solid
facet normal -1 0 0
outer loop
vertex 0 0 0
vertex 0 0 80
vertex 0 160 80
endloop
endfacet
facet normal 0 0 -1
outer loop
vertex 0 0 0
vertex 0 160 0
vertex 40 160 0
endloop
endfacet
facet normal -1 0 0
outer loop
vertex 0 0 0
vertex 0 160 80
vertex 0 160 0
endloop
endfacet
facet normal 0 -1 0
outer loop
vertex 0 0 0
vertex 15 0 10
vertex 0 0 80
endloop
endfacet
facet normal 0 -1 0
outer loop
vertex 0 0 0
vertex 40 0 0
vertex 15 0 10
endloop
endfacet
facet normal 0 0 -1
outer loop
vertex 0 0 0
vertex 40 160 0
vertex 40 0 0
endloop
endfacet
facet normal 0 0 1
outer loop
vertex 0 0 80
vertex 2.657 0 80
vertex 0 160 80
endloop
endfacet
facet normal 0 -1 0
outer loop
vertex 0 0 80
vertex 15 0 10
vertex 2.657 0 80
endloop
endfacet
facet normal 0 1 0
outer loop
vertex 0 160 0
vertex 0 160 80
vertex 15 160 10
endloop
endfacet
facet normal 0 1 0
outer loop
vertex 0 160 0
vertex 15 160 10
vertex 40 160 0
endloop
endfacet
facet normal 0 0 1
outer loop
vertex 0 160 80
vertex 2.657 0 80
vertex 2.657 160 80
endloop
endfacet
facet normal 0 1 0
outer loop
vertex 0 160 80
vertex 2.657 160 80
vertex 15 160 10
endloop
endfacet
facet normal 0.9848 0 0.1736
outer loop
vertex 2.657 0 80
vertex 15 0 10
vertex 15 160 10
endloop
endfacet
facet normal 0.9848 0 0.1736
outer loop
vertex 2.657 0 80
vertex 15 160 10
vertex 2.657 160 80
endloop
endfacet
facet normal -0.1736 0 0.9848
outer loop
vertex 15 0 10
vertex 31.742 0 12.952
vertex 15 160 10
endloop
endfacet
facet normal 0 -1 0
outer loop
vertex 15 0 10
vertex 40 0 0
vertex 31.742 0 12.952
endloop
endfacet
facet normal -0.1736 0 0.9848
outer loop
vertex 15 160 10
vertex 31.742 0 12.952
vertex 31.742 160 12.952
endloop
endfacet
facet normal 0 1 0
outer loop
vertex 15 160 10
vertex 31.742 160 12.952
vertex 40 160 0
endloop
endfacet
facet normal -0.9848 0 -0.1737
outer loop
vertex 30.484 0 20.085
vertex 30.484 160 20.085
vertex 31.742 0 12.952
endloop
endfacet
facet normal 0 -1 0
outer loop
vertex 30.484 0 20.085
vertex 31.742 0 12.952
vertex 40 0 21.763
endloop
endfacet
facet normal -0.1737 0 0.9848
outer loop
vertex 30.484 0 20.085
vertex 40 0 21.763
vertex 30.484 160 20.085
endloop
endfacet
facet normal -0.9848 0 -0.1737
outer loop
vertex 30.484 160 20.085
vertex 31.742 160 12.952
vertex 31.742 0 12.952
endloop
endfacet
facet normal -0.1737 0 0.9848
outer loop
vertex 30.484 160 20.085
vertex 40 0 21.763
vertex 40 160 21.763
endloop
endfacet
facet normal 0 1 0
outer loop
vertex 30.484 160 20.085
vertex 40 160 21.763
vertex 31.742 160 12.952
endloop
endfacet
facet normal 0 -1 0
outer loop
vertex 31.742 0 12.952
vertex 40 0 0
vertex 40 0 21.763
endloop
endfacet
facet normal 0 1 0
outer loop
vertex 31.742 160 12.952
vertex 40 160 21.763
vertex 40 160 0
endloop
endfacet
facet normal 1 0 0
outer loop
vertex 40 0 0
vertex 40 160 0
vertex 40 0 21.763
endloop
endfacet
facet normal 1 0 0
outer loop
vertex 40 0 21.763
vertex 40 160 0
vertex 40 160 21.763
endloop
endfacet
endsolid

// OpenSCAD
// mac mini monitorstand
// Sebastian Weigl
// 11.11.2025
// v01 --w/o insets

difference(){
cube([40,160,80]);
translate([15,0,10])
rotate([0,-10,0])
cube([17,160,225]);
translate([30,0,20])
rotate([0,-10,0])
cube([22,160,225]);
}

//
//  holls for insets
//
//  translate([20,50,0])
//  #cylinder(d=27,h=60,true);
//  translate([20,100,0])
//  #cylinder(d=27,h=60,true);
